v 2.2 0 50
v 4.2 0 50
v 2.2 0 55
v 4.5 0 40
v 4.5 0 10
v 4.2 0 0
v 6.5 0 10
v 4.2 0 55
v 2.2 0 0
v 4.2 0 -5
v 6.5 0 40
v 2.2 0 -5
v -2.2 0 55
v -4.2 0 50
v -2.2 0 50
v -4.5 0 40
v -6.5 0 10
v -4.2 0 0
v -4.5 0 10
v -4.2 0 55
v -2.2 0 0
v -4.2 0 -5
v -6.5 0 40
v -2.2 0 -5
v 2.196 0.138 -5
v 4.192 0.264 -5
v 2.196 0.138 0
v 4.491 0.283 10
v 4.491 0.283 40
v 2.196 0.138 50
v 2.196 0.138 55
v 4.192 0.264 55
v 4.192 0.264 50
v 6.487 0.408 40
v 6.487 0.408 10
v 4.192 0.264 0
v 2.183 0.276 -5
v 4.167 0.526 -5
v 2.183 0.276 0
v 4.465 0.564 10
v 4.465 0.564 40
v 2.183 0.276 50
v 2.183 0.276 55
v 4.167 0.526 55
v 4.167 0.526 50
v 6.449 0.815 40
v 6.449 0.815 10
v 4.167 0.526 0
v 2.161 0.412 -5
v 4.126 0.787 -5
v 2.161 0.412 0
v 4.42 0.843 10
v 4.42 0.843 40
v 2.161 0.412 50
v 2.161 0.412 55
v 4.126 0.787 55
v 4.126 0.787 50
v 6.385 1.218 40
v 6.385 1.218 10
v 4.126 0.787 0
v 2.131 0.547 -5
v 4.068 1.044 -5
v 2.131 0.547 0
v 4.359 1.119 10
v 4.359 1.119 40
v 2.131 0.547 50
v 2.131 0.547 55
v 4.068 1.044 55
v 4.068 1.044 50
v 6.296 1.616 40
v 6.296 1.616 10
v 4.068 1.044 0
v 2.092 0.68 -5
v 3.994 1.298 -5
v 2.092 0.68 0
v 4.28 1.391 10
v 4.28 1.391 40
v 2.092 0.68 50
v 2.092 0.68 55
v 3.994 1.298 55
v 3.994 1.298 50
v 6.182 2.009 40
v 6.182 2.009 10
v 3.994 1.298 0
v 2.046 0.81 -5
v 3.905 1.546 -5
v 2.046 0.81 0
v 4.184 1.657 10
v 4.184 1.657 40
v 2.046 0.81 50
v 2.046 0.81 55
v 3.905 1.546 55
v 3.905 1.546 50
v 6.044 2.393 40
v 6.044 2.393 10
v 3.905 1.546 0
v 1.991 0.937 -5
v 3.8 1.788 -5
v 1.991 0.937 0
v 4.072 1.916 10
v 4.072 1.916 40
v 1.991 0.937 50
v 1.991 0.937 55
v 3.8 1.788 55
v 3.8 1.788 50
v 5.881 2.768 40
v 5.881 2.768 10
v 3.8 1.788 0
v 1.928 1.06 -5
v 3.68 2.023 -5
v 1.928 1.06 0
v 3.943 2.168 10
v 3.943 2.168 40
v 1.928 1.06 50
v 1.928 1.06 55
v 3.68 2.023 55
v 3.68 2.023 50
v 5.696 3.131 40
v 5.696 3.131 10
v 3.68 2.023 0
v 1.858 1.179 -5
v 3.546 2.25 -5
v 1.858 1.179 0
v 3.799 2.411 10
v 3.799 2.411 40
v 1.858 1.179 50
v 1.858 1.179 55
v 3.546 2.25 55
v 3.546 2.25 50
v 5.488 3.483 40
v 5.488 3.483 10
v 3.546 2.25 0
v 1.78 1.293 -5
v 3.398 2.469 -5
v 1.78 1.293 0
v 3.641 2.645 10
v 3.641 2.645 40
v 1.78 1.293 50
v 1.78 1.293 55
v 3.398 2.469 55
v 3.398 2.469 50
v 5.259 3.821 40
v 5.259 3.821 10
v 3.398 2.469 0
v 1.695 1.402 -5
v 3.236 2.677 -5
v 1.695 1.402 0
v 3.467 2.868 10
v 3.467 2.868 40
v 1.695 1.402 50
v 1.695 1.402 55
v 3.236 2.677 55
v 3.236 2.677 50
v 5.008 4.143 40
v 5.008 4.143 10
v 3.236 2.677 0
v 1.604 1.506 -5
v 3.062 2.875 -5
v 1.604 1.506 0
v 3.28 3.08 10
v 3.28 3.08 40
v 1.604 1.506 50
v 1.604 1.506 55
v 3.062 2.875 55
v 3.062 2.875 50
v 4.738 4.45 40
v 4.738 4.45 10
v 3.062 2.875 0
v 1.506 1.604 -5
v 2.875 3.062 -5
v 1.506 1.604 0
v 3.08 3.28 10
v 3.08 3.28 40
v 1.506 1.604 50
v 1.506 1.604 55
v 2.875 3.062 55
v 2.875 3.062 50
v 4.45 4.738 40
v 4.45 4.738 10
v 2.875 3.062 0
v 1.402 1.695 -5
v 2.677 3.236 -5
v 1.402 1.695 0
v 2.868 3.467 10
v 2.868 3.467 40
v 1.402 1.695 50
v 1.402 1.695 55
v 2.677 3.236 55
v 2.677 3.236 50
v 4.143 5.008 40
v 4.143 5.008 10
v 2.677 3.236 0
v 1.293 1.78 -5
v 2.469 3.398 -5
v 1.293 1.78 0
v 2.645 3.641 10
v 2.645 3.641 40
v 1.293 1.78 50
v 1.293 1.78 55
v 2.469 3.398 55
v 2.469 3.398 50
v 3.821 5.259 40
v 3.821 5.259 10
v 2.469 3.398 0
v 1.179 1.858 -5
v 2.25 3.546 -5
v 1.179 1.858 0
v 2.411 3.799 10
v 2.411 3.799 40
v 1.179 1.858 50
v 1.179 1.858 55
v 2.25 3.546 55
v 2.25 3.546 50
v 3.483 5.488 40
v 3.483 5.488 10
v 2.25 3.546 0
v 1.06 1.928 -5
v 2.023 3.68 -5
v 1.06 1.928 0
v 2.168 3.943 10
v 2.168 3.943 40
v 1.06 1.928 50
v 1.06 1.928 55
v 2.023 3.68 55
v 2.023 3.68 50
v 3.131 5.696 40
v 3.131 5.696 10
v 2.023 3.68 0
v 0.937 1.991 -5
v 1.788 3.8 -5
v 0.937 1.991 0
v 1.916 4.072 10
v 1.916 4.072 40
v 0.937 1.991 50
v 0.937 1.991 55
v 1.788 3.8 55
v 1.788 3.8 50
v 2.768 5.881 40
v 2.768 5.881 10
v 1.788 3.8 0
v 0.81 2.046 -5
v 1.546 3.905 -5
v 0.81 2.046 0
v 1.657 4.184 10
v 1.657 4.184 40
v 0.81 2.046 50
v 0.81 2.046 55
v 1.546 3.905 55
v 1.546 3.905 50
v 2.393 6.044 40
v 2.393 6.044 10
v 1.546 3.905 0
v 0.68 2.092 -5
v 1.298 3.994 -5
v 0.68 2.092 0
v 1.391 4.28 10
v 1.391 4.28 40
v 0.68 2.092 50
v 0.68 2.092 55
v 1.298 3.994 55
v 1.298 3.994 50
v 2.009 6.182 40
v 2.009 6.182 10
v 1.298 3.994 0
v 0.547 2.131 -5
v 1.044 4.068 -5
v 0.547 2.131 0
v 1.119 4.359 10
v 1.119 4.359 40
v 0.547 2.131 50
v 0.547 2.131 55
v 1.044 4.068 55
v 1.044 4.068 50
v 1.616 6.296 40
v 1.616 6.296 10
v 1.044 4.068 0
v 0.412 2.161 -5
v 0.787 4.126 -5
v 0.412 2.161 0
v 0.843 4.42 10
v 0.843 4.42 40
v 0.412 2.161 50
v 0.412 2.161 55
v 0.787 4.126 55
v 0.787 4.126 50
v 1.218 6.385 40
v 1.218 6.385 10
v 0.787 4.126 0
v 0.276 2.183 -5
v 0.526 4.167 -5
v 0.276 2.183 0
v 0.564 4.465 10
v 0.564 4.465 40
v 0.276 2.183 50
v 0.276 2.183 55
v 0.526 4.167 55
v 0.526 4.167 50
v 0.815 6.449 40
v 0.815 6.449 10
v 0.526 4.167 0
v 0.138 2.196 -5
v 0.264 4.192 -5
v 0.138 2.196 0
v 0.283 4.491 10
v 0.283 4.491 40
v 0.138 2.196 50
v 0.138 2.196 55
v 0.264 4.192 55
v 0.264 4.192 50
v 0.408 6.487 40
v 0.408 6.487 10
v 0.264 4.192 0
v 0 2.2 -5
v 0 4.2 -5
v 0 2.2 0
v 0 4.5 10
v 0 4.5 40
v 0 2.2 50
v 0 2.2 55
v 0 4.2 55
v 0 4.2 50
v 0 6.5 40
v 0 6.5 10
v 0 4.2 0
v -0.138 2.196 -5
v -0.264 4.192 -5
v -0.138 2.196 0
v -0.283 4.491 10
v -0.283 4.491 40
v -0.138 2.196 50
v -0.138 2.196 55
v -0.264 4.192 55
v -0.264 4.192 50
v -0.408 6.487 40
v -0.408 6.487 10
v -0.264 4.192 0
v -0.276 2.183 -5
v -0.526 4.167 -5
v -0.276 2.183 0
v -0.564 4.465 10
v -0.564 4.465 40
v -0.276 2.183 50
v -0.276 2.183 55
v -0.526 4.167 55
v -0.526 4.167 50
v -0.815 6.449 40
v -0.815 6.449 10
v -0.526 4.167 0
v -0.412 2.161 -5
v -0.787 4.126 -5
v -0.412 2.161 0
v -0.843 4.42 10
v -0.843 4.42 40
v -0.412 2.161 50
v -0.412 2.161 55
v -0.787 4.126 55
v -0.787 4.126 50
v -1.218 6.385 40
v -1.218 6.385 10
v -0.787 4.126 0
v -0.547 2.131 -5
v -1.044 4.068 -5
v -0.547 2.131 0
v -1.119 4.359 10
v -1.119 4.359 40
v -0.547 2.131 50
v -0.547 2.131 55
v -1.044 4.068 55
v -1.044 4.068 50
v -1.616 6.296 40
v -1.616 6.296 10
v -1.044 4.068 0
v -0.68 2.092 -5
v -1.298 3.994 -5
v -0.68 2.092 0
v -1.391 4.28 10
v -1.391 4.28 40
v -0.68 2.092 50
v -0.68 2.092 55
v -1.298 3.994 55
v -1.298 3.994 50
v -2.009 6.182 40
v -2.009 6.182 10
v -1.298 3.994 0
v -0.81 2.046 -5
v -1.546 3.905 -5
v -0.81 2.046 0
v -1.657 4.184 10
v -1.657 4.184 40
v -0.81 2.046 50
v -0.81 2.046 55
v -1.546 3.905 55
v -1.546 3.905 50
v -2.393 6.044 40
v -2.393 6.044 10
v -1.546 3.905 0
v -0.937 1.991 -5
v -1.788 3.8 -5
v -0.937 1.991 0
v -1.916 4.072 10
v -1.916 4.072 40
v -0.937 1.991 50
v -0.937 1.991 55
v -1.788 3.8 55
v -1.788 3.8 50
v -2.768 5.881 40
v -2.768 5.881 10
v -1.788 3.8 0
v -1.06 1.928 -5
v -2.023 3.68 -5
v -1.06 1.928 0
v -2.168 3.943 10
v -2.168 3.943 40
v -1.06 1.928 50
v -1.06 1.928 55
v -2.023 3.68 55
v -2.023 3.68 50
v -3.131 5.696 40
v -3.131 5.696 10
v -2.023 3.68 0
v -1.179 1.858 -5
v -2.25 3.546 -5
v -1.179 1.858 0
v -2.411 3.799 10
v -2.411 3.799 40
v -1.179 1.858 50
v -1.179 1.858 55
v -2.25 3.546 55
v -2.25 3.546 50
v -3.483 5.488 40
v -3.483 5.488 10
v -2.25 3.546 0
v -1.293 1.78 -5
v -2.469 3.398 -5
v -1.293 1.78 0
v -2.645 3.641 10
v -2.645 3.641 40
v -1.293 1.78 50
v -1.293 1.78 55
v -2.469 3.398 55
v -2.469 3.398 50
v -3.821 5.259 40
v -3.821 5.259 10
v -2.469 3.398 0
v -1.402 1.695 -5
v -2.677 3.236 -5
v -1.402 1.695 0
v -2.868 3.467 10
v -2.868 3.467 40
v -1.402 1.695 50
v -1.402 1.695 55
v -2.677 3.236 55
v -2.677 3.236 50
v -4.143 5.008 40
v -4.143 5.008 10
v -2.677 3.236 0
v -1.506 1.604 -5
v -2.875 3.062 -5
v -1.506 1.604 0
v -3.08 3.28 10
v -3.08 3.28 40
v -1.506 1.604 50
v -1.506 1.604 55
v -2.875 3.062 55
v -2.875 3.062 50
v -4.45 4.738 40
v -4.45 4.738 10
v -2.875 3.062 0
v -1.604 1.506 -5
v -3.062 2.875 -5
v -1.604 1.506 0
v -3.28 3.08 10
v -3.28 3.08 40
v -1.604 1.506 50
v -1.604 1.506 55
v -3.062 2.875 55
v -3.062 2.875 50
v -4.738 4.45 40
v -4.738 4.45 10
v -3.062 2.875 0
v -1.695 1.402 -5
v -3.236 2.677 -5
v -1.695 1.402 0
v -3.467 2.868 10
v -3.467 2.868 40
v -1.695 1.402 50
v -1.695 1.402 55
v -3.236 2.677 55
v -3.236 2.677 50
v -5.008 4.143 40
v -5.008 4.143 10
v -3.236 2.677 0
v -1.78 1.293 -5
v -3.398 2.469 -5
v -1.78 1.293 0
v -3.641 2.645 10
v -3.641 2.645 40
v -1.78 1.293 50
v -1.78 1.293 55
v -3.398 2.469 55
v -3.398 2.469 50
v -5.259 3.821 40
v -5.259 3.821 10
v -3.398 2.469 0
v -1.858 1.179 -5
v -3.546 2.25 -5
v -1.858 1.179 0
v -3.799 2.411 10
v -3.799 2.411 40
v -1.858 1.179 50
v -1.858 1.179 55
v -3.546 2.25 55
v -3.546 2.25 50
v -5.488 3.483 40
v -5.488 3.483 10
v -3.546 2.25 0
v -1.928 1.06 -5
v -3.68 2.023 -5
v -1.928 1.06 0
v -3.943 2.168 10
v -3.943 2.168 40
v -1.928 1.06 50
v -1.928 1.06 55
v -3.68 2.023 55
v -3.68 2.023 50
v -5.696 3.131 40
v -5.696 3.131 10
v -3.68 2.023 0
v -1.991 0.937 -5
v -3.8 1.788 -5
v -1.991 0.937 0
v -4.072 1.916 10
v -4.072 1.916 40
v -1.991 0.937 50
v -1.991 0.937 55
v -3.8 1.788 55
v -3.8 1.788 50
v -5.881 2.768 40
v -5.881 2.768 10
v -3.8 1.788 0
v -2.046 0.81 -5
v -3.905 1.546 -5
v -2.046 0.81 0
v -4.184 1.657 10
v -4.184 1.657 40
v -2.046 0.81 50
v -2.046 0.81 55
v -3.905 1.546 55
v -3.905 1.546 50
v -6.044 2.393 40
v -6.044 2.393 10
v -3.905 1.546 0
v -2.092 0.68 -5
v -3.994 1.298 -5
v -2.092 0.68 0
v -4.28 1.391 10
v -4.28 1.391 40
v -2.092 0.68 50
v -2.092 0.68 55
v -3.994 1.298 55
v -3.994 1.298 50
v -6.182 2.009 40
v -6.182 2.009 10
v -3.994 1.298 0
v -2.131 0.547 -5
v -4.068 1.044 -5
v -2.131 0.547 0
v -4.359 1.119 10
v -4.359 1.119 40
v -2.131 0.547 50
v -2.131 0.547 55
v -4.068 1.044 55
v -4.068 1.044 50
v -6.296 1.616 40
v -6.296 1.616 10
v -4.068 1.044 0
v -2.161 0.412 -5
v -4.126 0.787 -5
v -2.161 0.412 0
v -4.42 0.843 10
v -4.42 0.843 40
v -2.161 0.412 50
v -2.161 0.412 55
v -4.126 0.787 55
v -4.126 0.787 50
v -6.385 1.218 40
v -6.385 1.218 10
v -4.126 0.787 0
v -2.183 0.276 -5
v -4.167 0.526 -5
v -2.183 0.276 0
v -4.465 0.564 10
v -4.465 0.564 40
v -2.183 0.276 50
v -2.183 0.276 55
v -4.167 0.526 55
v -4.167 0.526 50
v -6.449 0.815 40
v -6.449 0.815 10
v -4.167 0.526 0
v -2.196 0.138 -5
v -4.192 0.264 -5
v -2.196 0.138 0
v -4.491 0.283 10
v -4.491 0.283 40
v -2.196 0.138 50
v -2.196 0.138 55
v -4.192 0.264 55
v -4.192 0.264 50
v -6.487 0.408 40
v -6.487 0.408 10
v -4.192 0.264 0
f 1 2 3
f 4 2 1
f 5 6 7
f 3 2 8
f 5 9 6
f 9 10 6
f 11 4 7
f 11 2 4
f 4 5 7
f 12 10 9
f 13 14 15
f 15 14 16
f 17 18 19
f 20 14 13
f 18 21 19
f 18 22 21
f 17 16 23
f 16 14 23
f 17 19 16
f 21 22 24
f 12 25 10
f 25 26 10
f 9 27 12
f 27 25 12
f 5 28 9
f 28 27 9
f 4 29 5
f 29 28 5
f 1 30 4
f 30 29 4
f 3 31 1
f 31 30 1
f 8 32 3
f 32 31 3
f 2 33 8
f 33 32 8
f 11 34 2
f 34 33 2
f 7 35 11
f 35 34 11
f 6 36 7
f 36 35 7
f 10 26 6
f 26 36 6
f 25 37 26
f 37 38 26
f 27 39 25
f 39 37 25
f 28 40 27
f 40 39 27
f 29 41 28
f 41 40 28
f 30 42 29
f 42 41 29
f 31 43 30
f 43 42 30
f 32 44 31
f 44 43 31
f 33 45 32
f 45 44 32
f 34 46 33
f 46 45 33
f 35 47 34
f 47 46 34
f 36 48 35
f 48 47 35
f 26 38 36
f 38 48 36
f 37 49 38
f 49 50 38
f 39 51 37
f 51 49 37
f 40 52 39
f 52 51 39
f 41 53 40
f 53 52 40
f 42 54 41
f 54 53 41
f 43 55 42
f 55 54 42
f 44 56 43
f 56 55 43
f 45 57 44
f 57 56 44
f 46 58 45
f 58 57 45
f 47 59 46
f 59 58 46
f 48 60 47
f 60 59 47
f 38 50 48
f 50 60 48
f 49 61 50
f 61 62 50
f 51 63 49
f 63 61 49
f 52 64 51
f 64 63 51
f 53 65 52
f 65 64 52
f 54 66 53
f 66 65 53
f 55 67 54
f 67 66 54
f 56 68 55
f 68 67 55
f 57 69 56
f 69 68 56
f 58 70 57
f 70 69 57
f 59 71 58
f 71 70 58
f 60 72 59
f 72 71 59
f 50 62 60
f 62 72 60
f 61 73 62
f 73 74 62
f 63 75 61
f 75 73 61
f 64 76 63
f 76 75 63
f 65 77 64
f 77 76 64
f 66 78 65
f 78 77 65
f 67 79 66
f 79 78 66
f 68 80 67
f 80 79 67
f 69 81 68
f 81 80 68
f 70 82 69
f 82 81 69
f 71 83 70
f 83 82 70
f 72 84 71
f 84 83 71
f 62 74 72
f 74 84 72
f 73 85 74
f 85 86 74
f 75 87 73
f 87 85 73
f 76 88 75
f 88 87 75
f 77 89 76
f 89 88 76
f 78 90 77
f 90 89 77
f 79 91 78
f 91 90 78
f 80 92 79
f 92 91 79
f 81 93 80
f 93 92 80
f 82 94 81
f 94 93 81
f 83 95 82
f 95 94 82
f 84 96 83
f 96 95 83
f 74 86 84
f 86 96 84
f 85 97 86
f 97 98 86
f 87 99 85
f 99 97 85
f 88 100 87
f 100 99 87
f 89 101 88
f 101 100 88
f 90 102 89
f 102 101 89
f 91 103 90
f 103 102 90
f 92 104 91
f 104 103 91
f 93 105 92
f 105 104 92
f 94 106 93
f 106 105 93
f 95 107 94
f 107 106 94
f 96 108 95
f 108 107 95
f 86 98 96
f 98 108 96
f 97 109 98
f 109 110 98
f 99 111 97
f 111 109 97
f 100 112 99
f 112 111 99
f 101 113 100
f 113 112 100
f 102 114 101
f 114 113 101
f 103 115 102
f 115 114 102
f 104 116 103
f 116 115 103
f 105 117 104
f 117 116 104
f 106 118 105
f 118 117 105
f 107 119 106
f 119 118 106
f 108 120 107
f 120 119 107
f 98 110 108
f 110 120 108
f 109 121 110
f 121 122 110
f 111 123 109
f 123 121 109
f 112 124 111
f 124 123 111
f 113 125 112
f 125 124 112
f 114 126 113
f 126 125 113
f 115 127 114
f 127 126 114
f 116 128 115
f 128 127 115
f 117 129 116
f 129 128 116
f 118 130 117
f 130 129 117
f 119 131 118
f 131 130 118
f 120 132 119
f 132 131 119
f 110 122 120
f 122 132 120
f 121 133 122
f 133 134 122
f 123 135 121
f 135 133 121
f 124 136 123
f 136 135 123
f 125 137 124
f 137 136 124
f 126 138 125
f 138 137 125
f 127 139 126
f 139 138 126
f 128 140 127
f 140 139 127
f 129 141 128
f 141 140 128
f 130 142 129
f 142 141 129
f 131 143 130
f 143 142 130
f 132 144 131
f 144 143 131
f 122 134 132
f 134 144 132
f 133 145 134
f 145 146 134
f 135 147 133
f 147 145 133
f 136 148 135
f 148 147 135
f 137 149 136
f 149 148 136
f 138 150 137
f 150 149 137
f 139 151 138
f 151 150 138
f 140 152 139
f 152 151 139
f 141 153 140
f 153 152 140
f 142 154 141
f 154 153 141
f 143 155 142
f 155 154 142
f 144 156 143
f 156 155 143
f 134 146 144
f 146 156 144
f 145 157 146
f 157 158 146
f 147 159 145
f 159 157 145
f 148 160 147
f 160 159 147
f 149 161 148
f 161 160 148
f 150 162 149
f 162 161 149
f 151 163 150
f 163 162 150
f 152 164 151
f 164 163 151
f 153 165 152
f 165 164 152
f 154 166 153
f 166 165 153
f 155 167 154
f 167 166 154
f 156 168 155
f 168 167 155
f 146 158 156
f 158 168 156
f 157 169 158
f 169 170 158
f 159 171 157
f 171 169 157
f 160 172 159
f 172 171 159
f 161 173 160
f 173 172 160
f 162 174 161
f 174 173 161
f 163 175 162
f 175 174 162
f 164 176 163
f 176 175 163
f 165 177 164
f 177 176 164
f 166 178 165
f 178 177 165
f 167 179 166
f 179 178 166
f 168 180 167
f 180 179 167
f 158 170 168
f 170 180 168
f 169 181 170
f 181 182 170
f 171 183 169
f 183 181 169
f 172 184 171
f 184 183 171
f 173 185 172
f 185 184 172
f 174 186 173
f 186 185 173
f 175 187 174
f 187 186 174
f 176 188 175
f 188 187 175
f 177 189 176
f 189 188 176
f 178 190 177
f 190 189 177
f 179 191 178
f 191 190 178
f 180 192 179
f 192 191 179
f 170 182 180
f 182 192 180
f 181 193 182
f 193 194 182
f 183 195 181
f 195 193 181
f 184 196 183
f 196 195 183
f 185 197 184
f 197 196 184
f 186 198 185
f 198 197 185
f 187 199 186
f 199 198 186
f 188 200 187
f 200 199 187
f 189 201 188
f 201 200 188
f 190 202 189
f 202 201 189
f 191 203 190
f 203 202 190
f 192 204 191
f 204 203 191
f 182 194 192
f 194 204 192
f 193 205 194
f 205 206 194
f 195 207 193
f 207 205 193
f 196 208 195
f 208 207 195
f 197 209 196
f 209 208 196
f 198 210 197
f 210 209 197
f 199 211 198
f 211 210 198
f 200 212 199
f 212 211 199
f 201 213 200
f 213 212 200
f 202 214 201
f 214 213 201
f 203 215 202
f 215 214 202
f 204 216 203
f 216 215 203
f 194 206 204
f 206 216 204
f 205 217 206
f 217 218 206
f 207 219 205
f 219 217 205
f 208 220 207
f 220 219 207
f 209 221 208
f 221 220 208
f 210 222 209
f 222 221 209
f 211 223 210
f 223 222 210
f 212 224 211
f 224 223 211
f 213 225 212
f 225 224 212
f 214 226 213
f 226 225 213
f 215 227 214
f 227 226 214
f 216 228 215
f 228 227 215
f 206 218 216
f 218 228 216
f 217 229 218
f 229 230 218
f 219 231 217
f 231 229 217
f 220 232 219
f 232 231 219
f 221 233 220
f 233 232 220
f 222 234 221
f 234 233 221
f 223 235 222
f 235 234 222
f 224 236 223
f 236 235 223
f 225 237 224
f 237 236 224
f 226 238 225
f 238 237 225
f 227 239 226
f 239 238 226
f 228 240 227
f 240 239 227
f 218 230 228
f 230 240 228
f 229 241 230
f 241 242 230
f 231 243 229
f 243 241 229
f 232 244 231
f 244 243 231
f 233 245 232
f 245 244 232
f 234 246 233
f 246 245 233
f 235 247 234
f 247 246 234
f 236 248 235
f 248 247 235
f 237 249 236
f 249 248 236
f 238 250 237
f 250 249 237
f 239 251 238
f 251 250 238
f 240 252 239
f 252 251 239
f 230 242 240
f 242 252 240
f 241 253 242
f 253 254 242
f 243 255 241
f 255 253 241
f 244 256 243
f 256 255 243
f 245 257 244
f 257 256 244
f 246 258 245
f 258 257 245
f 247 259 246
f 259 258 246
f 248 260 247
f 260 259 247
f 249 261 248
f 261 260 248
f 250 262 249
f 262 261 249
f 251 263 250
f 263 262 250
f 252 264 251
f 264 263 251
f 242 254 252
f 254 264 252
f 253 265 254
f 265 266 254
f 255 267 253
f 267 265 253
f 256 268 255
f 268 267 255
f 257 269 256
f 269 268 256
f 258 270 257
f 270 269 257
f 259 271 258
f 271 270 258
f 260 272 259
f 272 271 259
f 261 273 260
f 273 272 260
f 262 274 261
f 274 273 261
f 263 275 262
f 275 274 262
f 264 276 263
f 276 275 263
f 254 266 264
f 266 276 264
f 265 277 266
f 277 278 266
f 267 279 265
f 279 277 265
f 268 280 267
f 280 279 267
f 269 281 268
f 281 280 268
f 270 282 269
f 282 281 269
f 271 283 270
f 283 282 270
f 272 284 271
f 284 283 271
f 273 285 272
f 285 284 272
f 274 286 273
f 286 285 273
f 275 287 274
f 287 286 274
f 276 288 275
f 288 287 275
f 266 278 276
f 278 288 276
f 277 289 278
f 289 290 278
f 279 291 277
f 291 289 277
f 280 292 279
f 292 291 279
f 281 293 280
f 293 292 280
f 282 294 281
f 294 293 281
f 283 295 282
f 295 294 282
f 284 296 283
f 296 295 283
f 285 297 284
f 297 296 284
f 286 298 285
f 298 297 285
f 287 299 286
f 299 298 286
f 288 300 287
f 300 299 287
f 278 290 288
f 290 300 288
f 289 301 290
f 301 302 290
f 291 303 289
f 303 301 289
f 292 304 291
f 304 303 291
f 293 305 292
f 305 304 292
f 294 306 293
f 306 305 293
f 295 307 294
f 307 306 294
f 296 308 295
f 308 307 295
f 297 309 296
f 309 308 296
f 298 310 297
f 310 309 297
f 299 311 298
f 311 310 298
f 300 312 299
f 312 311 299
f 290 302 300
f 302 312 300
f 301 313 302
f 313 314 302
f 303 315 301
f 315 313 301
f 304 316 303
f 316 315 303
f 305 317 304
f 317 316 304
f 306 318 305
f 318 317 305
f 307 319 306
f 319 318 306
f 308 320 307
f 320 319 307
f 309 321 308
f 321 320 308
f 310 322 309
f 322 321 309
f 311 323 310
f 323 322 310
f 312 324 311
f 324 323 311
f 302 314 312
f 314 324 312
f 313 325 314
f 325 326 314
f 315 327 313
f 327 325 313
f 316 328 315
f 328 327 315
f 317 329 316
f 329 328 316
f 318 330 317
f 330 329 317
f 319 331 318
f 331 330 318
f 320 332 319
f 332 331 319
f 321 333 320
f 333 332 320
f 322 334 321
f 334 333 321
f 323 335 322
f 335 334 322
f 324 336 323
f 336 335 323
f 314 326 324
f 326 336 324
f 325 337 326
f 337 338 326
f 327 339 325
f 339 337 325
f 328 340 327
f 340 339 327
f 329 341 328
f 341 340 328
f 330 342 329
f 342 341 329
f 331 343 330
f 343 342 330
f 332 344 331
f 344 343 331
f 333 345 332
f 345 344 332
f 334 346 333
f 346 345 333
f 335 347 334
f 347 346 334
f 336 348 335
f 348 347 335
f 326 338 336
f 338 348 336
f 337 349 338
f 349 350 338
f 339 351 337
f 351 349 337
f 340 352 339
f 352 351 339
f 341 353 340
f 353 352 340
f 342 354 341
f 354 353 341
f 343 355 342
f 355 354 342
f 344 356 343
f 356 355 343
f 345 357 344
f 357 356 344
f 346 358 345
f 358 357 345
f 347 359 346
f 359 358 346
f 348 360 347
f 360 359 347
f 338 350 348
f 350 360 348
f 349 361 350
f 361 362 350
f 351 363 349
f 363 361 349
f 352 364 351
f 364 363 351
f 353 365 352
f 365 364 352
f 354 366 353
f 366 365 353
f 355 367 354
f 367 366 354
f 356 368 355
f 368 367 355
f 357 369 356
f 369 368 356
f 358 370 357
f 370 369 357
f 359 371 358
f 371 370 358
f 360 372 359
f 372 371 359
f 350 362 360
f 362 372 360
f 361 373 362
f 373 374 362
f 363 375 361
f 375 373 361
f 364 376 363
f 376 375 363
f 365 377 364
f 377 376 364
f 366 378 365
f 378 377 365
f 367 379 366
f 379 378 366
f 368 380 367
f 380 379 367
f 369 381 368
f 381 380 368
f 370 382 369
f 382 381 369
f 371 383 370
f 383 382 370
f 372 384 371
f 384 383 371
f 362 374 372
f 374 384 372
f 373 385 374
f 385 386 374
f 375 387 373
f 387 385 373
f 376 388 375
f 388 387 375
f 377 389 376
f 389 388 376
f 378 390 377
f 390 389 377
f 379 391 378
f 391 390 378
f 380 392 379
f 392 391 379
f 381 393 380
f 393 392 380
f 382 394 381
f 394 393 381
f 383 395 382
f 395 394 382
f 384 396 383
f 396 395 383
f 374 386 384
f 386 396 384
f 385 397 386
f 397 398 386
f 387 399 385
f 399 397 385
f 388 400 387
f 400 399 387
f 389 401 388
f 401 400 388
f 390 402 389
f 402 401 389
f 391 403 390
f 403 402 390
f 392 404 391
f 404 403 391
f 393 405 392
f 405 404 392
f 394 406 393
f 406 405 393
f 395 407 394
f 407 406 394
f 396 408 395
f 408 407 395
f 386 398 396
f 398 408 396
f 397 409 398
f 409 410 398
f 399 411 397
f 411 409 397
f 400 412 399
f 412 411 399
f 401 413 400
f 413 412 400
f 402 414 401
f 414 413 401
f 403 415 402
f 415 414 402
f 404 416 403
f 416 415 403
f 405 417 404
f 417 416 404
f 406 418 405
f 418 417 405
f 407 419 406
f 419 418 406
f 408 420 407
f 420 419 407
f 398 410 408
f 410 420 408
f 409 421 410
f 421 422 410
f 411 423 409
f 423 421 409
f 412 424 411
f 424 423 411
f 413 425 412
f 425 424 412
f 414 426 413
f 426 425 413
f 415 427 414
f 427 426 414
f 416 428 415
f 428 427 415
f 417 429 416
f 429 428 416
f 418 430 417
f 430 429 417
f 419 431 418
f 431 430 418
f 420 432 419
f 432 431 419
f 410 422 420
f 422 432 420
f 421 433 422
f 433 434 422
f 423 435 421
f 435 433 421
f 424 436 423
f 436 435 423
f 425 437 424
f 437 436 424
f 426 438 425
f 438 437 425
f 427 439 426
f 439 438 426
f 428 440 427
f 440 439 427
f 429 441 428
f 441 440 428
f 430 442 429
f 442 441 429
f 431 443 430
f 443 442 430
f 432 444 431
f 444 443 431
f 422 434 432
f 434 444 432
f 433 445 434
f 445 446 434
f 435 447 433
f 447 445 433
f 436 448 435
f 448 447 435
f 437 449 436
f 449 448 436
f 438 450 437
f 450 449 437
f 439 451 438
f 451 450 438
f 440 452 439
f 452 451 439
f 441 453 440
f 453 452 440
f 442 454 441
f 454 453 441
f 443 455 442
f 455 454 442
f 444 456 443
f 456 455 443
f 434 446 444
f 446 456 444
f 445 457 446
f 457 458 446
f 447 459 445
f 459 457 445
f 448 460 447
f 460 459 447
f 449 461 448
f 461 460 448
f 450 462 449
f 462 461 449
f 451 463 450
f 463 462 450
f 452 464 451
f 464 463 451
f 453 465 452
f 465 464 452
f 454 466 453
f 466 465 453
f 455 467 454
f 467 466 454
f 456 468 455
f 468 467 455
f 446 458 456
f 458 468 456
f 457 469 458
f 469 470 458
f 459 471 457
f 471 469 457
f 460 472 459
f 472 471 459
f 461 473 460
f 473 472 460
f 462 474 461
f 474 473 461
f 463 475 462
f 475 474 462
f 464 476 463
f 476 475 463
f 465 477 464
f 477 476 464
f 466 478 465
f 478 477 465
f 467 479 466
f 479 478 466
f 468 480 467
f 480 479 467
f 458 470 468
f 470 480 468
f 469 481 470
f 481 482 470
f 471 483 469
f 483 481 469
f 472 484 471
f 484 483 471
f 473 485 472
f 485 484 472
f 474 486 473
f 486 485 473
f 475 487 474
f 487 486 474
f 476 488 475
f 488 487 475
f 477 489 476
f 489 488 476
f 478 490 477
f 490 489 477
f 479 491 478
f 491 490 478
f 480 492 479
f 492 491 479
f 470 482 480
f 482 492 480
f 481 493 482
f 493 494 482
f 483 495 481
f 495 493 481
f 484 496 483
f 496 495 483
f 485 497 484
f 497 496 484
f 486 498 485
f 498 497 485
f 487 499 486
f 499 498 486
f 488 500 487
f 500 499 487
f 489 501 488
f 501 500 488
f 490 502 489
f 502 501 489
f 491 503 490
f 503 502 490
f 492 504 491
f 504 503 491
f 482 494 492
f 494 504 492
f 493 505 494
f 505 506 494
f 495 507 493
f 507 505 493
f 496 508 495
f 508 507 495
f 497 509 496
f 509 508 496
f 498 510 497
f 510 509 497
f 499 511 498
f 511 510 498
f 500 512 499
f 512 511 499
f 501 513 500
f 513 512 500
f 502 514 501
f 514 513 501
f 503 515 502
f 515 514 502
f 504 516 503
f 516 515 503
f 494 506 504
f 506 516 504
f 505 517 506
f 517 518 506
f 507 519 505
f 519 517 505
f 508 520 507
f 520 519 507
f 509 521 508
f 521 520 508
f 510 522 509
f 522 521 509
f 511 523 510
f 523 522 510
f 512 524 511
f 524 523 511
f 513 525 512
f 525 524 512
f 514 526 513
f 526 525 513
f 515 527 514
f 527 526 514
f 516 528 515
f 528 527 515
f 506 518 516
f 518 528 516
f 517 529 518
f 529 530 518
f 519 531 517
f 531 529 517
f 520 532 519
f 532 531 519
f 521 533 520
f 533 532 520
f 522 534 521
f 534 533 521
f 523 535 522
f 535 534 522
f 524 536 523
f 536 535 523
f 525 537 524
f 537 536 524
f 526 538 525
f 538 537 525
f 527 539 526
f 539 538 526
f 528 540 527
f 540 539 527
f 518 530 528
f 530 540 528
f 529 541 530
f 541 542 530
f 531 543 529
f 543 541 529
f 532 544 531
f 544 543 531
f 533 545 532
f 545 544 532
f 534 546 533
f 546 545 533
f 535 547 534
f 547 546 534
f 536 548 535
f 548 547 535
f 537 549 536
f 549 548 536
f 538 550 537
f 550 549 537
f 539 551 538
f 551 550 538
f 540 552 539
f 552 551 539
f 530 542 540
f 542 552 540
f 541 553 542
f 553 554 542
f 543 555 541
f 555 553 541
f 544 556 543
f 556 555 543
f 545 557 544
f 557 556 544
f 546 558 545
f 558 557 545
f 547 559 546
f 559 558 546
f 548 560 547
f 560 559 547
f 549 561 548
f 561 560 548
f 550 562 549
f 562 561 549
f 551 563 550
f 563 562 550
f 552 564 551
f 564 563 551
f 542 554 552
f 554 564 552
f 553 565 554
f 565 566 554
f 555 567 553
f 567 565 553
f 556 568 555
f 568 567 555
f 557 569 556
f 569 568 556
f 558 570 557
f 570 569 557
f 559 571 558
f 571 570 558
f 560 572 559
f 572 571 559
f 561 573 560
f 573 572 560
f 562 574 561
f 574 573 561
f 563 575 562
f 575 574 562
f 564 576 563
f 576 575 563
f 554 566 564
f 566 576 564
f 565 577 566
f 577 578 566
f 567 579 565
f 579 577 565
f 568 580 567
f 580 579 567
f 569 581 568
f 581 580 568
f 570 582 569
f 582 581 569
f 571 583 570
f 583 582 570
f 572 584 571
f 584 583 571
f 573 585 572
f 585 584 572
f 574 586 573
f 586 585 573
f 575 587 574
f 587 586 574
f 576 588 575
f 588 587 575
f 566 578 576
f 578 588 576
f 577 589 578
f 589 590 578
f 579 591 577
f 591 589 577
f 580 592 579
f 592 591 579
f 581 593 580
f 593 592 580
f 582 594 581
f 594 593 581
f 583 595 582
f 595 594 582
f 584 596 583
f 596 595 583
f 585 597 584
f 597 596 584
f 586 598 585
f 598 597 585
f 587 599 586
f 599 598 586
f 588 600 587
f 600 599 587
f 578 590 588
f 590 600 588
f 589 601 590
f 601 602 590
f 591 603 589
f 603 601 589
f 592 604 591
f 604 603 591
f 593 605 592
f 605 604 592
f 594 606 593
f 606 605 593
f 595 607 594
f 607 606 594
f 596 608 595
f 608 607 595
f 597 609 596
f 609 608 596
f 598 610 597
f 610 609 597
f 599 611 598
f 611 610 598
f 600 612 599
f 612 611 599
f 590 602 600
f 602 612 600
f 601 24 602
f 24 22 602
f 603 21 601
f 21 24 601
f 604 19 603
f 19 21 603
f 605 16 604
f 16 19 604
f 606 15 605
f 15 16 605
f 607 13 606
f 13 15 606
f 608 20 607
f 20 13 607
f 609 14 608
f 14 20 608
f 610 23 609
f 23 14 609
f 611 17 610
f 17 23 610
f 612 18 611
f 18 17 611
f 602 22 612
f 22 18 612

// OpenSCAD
$fn = 100;

$wire_dia  = 4.4;
$thick_dia = 9;
$len       = 30;
$wall      = 2;
$shank     = 5;

$wire_r = $wire_dia / 2;
$mid_r = $thick_dia /2;

rotate_extrude(angle=180, convexity=2)
polygon([
[$wire_r,-$shank],
[$wire_r,0],
[$mid_r,10],
[$mid_r,$len+10],
[$wire_r,$len+20],
[$wire_r,$len+20+$shank],

[$wire_r+$wall,$len+20+$shank],
[$wire_r+$wall,$len+20],
[$mid_r+$wall,$len+10],
[$mid_r+$wall,10],
[$wire_r+$wall,0],
[$wire_r+$wall,-$shank],
]);
